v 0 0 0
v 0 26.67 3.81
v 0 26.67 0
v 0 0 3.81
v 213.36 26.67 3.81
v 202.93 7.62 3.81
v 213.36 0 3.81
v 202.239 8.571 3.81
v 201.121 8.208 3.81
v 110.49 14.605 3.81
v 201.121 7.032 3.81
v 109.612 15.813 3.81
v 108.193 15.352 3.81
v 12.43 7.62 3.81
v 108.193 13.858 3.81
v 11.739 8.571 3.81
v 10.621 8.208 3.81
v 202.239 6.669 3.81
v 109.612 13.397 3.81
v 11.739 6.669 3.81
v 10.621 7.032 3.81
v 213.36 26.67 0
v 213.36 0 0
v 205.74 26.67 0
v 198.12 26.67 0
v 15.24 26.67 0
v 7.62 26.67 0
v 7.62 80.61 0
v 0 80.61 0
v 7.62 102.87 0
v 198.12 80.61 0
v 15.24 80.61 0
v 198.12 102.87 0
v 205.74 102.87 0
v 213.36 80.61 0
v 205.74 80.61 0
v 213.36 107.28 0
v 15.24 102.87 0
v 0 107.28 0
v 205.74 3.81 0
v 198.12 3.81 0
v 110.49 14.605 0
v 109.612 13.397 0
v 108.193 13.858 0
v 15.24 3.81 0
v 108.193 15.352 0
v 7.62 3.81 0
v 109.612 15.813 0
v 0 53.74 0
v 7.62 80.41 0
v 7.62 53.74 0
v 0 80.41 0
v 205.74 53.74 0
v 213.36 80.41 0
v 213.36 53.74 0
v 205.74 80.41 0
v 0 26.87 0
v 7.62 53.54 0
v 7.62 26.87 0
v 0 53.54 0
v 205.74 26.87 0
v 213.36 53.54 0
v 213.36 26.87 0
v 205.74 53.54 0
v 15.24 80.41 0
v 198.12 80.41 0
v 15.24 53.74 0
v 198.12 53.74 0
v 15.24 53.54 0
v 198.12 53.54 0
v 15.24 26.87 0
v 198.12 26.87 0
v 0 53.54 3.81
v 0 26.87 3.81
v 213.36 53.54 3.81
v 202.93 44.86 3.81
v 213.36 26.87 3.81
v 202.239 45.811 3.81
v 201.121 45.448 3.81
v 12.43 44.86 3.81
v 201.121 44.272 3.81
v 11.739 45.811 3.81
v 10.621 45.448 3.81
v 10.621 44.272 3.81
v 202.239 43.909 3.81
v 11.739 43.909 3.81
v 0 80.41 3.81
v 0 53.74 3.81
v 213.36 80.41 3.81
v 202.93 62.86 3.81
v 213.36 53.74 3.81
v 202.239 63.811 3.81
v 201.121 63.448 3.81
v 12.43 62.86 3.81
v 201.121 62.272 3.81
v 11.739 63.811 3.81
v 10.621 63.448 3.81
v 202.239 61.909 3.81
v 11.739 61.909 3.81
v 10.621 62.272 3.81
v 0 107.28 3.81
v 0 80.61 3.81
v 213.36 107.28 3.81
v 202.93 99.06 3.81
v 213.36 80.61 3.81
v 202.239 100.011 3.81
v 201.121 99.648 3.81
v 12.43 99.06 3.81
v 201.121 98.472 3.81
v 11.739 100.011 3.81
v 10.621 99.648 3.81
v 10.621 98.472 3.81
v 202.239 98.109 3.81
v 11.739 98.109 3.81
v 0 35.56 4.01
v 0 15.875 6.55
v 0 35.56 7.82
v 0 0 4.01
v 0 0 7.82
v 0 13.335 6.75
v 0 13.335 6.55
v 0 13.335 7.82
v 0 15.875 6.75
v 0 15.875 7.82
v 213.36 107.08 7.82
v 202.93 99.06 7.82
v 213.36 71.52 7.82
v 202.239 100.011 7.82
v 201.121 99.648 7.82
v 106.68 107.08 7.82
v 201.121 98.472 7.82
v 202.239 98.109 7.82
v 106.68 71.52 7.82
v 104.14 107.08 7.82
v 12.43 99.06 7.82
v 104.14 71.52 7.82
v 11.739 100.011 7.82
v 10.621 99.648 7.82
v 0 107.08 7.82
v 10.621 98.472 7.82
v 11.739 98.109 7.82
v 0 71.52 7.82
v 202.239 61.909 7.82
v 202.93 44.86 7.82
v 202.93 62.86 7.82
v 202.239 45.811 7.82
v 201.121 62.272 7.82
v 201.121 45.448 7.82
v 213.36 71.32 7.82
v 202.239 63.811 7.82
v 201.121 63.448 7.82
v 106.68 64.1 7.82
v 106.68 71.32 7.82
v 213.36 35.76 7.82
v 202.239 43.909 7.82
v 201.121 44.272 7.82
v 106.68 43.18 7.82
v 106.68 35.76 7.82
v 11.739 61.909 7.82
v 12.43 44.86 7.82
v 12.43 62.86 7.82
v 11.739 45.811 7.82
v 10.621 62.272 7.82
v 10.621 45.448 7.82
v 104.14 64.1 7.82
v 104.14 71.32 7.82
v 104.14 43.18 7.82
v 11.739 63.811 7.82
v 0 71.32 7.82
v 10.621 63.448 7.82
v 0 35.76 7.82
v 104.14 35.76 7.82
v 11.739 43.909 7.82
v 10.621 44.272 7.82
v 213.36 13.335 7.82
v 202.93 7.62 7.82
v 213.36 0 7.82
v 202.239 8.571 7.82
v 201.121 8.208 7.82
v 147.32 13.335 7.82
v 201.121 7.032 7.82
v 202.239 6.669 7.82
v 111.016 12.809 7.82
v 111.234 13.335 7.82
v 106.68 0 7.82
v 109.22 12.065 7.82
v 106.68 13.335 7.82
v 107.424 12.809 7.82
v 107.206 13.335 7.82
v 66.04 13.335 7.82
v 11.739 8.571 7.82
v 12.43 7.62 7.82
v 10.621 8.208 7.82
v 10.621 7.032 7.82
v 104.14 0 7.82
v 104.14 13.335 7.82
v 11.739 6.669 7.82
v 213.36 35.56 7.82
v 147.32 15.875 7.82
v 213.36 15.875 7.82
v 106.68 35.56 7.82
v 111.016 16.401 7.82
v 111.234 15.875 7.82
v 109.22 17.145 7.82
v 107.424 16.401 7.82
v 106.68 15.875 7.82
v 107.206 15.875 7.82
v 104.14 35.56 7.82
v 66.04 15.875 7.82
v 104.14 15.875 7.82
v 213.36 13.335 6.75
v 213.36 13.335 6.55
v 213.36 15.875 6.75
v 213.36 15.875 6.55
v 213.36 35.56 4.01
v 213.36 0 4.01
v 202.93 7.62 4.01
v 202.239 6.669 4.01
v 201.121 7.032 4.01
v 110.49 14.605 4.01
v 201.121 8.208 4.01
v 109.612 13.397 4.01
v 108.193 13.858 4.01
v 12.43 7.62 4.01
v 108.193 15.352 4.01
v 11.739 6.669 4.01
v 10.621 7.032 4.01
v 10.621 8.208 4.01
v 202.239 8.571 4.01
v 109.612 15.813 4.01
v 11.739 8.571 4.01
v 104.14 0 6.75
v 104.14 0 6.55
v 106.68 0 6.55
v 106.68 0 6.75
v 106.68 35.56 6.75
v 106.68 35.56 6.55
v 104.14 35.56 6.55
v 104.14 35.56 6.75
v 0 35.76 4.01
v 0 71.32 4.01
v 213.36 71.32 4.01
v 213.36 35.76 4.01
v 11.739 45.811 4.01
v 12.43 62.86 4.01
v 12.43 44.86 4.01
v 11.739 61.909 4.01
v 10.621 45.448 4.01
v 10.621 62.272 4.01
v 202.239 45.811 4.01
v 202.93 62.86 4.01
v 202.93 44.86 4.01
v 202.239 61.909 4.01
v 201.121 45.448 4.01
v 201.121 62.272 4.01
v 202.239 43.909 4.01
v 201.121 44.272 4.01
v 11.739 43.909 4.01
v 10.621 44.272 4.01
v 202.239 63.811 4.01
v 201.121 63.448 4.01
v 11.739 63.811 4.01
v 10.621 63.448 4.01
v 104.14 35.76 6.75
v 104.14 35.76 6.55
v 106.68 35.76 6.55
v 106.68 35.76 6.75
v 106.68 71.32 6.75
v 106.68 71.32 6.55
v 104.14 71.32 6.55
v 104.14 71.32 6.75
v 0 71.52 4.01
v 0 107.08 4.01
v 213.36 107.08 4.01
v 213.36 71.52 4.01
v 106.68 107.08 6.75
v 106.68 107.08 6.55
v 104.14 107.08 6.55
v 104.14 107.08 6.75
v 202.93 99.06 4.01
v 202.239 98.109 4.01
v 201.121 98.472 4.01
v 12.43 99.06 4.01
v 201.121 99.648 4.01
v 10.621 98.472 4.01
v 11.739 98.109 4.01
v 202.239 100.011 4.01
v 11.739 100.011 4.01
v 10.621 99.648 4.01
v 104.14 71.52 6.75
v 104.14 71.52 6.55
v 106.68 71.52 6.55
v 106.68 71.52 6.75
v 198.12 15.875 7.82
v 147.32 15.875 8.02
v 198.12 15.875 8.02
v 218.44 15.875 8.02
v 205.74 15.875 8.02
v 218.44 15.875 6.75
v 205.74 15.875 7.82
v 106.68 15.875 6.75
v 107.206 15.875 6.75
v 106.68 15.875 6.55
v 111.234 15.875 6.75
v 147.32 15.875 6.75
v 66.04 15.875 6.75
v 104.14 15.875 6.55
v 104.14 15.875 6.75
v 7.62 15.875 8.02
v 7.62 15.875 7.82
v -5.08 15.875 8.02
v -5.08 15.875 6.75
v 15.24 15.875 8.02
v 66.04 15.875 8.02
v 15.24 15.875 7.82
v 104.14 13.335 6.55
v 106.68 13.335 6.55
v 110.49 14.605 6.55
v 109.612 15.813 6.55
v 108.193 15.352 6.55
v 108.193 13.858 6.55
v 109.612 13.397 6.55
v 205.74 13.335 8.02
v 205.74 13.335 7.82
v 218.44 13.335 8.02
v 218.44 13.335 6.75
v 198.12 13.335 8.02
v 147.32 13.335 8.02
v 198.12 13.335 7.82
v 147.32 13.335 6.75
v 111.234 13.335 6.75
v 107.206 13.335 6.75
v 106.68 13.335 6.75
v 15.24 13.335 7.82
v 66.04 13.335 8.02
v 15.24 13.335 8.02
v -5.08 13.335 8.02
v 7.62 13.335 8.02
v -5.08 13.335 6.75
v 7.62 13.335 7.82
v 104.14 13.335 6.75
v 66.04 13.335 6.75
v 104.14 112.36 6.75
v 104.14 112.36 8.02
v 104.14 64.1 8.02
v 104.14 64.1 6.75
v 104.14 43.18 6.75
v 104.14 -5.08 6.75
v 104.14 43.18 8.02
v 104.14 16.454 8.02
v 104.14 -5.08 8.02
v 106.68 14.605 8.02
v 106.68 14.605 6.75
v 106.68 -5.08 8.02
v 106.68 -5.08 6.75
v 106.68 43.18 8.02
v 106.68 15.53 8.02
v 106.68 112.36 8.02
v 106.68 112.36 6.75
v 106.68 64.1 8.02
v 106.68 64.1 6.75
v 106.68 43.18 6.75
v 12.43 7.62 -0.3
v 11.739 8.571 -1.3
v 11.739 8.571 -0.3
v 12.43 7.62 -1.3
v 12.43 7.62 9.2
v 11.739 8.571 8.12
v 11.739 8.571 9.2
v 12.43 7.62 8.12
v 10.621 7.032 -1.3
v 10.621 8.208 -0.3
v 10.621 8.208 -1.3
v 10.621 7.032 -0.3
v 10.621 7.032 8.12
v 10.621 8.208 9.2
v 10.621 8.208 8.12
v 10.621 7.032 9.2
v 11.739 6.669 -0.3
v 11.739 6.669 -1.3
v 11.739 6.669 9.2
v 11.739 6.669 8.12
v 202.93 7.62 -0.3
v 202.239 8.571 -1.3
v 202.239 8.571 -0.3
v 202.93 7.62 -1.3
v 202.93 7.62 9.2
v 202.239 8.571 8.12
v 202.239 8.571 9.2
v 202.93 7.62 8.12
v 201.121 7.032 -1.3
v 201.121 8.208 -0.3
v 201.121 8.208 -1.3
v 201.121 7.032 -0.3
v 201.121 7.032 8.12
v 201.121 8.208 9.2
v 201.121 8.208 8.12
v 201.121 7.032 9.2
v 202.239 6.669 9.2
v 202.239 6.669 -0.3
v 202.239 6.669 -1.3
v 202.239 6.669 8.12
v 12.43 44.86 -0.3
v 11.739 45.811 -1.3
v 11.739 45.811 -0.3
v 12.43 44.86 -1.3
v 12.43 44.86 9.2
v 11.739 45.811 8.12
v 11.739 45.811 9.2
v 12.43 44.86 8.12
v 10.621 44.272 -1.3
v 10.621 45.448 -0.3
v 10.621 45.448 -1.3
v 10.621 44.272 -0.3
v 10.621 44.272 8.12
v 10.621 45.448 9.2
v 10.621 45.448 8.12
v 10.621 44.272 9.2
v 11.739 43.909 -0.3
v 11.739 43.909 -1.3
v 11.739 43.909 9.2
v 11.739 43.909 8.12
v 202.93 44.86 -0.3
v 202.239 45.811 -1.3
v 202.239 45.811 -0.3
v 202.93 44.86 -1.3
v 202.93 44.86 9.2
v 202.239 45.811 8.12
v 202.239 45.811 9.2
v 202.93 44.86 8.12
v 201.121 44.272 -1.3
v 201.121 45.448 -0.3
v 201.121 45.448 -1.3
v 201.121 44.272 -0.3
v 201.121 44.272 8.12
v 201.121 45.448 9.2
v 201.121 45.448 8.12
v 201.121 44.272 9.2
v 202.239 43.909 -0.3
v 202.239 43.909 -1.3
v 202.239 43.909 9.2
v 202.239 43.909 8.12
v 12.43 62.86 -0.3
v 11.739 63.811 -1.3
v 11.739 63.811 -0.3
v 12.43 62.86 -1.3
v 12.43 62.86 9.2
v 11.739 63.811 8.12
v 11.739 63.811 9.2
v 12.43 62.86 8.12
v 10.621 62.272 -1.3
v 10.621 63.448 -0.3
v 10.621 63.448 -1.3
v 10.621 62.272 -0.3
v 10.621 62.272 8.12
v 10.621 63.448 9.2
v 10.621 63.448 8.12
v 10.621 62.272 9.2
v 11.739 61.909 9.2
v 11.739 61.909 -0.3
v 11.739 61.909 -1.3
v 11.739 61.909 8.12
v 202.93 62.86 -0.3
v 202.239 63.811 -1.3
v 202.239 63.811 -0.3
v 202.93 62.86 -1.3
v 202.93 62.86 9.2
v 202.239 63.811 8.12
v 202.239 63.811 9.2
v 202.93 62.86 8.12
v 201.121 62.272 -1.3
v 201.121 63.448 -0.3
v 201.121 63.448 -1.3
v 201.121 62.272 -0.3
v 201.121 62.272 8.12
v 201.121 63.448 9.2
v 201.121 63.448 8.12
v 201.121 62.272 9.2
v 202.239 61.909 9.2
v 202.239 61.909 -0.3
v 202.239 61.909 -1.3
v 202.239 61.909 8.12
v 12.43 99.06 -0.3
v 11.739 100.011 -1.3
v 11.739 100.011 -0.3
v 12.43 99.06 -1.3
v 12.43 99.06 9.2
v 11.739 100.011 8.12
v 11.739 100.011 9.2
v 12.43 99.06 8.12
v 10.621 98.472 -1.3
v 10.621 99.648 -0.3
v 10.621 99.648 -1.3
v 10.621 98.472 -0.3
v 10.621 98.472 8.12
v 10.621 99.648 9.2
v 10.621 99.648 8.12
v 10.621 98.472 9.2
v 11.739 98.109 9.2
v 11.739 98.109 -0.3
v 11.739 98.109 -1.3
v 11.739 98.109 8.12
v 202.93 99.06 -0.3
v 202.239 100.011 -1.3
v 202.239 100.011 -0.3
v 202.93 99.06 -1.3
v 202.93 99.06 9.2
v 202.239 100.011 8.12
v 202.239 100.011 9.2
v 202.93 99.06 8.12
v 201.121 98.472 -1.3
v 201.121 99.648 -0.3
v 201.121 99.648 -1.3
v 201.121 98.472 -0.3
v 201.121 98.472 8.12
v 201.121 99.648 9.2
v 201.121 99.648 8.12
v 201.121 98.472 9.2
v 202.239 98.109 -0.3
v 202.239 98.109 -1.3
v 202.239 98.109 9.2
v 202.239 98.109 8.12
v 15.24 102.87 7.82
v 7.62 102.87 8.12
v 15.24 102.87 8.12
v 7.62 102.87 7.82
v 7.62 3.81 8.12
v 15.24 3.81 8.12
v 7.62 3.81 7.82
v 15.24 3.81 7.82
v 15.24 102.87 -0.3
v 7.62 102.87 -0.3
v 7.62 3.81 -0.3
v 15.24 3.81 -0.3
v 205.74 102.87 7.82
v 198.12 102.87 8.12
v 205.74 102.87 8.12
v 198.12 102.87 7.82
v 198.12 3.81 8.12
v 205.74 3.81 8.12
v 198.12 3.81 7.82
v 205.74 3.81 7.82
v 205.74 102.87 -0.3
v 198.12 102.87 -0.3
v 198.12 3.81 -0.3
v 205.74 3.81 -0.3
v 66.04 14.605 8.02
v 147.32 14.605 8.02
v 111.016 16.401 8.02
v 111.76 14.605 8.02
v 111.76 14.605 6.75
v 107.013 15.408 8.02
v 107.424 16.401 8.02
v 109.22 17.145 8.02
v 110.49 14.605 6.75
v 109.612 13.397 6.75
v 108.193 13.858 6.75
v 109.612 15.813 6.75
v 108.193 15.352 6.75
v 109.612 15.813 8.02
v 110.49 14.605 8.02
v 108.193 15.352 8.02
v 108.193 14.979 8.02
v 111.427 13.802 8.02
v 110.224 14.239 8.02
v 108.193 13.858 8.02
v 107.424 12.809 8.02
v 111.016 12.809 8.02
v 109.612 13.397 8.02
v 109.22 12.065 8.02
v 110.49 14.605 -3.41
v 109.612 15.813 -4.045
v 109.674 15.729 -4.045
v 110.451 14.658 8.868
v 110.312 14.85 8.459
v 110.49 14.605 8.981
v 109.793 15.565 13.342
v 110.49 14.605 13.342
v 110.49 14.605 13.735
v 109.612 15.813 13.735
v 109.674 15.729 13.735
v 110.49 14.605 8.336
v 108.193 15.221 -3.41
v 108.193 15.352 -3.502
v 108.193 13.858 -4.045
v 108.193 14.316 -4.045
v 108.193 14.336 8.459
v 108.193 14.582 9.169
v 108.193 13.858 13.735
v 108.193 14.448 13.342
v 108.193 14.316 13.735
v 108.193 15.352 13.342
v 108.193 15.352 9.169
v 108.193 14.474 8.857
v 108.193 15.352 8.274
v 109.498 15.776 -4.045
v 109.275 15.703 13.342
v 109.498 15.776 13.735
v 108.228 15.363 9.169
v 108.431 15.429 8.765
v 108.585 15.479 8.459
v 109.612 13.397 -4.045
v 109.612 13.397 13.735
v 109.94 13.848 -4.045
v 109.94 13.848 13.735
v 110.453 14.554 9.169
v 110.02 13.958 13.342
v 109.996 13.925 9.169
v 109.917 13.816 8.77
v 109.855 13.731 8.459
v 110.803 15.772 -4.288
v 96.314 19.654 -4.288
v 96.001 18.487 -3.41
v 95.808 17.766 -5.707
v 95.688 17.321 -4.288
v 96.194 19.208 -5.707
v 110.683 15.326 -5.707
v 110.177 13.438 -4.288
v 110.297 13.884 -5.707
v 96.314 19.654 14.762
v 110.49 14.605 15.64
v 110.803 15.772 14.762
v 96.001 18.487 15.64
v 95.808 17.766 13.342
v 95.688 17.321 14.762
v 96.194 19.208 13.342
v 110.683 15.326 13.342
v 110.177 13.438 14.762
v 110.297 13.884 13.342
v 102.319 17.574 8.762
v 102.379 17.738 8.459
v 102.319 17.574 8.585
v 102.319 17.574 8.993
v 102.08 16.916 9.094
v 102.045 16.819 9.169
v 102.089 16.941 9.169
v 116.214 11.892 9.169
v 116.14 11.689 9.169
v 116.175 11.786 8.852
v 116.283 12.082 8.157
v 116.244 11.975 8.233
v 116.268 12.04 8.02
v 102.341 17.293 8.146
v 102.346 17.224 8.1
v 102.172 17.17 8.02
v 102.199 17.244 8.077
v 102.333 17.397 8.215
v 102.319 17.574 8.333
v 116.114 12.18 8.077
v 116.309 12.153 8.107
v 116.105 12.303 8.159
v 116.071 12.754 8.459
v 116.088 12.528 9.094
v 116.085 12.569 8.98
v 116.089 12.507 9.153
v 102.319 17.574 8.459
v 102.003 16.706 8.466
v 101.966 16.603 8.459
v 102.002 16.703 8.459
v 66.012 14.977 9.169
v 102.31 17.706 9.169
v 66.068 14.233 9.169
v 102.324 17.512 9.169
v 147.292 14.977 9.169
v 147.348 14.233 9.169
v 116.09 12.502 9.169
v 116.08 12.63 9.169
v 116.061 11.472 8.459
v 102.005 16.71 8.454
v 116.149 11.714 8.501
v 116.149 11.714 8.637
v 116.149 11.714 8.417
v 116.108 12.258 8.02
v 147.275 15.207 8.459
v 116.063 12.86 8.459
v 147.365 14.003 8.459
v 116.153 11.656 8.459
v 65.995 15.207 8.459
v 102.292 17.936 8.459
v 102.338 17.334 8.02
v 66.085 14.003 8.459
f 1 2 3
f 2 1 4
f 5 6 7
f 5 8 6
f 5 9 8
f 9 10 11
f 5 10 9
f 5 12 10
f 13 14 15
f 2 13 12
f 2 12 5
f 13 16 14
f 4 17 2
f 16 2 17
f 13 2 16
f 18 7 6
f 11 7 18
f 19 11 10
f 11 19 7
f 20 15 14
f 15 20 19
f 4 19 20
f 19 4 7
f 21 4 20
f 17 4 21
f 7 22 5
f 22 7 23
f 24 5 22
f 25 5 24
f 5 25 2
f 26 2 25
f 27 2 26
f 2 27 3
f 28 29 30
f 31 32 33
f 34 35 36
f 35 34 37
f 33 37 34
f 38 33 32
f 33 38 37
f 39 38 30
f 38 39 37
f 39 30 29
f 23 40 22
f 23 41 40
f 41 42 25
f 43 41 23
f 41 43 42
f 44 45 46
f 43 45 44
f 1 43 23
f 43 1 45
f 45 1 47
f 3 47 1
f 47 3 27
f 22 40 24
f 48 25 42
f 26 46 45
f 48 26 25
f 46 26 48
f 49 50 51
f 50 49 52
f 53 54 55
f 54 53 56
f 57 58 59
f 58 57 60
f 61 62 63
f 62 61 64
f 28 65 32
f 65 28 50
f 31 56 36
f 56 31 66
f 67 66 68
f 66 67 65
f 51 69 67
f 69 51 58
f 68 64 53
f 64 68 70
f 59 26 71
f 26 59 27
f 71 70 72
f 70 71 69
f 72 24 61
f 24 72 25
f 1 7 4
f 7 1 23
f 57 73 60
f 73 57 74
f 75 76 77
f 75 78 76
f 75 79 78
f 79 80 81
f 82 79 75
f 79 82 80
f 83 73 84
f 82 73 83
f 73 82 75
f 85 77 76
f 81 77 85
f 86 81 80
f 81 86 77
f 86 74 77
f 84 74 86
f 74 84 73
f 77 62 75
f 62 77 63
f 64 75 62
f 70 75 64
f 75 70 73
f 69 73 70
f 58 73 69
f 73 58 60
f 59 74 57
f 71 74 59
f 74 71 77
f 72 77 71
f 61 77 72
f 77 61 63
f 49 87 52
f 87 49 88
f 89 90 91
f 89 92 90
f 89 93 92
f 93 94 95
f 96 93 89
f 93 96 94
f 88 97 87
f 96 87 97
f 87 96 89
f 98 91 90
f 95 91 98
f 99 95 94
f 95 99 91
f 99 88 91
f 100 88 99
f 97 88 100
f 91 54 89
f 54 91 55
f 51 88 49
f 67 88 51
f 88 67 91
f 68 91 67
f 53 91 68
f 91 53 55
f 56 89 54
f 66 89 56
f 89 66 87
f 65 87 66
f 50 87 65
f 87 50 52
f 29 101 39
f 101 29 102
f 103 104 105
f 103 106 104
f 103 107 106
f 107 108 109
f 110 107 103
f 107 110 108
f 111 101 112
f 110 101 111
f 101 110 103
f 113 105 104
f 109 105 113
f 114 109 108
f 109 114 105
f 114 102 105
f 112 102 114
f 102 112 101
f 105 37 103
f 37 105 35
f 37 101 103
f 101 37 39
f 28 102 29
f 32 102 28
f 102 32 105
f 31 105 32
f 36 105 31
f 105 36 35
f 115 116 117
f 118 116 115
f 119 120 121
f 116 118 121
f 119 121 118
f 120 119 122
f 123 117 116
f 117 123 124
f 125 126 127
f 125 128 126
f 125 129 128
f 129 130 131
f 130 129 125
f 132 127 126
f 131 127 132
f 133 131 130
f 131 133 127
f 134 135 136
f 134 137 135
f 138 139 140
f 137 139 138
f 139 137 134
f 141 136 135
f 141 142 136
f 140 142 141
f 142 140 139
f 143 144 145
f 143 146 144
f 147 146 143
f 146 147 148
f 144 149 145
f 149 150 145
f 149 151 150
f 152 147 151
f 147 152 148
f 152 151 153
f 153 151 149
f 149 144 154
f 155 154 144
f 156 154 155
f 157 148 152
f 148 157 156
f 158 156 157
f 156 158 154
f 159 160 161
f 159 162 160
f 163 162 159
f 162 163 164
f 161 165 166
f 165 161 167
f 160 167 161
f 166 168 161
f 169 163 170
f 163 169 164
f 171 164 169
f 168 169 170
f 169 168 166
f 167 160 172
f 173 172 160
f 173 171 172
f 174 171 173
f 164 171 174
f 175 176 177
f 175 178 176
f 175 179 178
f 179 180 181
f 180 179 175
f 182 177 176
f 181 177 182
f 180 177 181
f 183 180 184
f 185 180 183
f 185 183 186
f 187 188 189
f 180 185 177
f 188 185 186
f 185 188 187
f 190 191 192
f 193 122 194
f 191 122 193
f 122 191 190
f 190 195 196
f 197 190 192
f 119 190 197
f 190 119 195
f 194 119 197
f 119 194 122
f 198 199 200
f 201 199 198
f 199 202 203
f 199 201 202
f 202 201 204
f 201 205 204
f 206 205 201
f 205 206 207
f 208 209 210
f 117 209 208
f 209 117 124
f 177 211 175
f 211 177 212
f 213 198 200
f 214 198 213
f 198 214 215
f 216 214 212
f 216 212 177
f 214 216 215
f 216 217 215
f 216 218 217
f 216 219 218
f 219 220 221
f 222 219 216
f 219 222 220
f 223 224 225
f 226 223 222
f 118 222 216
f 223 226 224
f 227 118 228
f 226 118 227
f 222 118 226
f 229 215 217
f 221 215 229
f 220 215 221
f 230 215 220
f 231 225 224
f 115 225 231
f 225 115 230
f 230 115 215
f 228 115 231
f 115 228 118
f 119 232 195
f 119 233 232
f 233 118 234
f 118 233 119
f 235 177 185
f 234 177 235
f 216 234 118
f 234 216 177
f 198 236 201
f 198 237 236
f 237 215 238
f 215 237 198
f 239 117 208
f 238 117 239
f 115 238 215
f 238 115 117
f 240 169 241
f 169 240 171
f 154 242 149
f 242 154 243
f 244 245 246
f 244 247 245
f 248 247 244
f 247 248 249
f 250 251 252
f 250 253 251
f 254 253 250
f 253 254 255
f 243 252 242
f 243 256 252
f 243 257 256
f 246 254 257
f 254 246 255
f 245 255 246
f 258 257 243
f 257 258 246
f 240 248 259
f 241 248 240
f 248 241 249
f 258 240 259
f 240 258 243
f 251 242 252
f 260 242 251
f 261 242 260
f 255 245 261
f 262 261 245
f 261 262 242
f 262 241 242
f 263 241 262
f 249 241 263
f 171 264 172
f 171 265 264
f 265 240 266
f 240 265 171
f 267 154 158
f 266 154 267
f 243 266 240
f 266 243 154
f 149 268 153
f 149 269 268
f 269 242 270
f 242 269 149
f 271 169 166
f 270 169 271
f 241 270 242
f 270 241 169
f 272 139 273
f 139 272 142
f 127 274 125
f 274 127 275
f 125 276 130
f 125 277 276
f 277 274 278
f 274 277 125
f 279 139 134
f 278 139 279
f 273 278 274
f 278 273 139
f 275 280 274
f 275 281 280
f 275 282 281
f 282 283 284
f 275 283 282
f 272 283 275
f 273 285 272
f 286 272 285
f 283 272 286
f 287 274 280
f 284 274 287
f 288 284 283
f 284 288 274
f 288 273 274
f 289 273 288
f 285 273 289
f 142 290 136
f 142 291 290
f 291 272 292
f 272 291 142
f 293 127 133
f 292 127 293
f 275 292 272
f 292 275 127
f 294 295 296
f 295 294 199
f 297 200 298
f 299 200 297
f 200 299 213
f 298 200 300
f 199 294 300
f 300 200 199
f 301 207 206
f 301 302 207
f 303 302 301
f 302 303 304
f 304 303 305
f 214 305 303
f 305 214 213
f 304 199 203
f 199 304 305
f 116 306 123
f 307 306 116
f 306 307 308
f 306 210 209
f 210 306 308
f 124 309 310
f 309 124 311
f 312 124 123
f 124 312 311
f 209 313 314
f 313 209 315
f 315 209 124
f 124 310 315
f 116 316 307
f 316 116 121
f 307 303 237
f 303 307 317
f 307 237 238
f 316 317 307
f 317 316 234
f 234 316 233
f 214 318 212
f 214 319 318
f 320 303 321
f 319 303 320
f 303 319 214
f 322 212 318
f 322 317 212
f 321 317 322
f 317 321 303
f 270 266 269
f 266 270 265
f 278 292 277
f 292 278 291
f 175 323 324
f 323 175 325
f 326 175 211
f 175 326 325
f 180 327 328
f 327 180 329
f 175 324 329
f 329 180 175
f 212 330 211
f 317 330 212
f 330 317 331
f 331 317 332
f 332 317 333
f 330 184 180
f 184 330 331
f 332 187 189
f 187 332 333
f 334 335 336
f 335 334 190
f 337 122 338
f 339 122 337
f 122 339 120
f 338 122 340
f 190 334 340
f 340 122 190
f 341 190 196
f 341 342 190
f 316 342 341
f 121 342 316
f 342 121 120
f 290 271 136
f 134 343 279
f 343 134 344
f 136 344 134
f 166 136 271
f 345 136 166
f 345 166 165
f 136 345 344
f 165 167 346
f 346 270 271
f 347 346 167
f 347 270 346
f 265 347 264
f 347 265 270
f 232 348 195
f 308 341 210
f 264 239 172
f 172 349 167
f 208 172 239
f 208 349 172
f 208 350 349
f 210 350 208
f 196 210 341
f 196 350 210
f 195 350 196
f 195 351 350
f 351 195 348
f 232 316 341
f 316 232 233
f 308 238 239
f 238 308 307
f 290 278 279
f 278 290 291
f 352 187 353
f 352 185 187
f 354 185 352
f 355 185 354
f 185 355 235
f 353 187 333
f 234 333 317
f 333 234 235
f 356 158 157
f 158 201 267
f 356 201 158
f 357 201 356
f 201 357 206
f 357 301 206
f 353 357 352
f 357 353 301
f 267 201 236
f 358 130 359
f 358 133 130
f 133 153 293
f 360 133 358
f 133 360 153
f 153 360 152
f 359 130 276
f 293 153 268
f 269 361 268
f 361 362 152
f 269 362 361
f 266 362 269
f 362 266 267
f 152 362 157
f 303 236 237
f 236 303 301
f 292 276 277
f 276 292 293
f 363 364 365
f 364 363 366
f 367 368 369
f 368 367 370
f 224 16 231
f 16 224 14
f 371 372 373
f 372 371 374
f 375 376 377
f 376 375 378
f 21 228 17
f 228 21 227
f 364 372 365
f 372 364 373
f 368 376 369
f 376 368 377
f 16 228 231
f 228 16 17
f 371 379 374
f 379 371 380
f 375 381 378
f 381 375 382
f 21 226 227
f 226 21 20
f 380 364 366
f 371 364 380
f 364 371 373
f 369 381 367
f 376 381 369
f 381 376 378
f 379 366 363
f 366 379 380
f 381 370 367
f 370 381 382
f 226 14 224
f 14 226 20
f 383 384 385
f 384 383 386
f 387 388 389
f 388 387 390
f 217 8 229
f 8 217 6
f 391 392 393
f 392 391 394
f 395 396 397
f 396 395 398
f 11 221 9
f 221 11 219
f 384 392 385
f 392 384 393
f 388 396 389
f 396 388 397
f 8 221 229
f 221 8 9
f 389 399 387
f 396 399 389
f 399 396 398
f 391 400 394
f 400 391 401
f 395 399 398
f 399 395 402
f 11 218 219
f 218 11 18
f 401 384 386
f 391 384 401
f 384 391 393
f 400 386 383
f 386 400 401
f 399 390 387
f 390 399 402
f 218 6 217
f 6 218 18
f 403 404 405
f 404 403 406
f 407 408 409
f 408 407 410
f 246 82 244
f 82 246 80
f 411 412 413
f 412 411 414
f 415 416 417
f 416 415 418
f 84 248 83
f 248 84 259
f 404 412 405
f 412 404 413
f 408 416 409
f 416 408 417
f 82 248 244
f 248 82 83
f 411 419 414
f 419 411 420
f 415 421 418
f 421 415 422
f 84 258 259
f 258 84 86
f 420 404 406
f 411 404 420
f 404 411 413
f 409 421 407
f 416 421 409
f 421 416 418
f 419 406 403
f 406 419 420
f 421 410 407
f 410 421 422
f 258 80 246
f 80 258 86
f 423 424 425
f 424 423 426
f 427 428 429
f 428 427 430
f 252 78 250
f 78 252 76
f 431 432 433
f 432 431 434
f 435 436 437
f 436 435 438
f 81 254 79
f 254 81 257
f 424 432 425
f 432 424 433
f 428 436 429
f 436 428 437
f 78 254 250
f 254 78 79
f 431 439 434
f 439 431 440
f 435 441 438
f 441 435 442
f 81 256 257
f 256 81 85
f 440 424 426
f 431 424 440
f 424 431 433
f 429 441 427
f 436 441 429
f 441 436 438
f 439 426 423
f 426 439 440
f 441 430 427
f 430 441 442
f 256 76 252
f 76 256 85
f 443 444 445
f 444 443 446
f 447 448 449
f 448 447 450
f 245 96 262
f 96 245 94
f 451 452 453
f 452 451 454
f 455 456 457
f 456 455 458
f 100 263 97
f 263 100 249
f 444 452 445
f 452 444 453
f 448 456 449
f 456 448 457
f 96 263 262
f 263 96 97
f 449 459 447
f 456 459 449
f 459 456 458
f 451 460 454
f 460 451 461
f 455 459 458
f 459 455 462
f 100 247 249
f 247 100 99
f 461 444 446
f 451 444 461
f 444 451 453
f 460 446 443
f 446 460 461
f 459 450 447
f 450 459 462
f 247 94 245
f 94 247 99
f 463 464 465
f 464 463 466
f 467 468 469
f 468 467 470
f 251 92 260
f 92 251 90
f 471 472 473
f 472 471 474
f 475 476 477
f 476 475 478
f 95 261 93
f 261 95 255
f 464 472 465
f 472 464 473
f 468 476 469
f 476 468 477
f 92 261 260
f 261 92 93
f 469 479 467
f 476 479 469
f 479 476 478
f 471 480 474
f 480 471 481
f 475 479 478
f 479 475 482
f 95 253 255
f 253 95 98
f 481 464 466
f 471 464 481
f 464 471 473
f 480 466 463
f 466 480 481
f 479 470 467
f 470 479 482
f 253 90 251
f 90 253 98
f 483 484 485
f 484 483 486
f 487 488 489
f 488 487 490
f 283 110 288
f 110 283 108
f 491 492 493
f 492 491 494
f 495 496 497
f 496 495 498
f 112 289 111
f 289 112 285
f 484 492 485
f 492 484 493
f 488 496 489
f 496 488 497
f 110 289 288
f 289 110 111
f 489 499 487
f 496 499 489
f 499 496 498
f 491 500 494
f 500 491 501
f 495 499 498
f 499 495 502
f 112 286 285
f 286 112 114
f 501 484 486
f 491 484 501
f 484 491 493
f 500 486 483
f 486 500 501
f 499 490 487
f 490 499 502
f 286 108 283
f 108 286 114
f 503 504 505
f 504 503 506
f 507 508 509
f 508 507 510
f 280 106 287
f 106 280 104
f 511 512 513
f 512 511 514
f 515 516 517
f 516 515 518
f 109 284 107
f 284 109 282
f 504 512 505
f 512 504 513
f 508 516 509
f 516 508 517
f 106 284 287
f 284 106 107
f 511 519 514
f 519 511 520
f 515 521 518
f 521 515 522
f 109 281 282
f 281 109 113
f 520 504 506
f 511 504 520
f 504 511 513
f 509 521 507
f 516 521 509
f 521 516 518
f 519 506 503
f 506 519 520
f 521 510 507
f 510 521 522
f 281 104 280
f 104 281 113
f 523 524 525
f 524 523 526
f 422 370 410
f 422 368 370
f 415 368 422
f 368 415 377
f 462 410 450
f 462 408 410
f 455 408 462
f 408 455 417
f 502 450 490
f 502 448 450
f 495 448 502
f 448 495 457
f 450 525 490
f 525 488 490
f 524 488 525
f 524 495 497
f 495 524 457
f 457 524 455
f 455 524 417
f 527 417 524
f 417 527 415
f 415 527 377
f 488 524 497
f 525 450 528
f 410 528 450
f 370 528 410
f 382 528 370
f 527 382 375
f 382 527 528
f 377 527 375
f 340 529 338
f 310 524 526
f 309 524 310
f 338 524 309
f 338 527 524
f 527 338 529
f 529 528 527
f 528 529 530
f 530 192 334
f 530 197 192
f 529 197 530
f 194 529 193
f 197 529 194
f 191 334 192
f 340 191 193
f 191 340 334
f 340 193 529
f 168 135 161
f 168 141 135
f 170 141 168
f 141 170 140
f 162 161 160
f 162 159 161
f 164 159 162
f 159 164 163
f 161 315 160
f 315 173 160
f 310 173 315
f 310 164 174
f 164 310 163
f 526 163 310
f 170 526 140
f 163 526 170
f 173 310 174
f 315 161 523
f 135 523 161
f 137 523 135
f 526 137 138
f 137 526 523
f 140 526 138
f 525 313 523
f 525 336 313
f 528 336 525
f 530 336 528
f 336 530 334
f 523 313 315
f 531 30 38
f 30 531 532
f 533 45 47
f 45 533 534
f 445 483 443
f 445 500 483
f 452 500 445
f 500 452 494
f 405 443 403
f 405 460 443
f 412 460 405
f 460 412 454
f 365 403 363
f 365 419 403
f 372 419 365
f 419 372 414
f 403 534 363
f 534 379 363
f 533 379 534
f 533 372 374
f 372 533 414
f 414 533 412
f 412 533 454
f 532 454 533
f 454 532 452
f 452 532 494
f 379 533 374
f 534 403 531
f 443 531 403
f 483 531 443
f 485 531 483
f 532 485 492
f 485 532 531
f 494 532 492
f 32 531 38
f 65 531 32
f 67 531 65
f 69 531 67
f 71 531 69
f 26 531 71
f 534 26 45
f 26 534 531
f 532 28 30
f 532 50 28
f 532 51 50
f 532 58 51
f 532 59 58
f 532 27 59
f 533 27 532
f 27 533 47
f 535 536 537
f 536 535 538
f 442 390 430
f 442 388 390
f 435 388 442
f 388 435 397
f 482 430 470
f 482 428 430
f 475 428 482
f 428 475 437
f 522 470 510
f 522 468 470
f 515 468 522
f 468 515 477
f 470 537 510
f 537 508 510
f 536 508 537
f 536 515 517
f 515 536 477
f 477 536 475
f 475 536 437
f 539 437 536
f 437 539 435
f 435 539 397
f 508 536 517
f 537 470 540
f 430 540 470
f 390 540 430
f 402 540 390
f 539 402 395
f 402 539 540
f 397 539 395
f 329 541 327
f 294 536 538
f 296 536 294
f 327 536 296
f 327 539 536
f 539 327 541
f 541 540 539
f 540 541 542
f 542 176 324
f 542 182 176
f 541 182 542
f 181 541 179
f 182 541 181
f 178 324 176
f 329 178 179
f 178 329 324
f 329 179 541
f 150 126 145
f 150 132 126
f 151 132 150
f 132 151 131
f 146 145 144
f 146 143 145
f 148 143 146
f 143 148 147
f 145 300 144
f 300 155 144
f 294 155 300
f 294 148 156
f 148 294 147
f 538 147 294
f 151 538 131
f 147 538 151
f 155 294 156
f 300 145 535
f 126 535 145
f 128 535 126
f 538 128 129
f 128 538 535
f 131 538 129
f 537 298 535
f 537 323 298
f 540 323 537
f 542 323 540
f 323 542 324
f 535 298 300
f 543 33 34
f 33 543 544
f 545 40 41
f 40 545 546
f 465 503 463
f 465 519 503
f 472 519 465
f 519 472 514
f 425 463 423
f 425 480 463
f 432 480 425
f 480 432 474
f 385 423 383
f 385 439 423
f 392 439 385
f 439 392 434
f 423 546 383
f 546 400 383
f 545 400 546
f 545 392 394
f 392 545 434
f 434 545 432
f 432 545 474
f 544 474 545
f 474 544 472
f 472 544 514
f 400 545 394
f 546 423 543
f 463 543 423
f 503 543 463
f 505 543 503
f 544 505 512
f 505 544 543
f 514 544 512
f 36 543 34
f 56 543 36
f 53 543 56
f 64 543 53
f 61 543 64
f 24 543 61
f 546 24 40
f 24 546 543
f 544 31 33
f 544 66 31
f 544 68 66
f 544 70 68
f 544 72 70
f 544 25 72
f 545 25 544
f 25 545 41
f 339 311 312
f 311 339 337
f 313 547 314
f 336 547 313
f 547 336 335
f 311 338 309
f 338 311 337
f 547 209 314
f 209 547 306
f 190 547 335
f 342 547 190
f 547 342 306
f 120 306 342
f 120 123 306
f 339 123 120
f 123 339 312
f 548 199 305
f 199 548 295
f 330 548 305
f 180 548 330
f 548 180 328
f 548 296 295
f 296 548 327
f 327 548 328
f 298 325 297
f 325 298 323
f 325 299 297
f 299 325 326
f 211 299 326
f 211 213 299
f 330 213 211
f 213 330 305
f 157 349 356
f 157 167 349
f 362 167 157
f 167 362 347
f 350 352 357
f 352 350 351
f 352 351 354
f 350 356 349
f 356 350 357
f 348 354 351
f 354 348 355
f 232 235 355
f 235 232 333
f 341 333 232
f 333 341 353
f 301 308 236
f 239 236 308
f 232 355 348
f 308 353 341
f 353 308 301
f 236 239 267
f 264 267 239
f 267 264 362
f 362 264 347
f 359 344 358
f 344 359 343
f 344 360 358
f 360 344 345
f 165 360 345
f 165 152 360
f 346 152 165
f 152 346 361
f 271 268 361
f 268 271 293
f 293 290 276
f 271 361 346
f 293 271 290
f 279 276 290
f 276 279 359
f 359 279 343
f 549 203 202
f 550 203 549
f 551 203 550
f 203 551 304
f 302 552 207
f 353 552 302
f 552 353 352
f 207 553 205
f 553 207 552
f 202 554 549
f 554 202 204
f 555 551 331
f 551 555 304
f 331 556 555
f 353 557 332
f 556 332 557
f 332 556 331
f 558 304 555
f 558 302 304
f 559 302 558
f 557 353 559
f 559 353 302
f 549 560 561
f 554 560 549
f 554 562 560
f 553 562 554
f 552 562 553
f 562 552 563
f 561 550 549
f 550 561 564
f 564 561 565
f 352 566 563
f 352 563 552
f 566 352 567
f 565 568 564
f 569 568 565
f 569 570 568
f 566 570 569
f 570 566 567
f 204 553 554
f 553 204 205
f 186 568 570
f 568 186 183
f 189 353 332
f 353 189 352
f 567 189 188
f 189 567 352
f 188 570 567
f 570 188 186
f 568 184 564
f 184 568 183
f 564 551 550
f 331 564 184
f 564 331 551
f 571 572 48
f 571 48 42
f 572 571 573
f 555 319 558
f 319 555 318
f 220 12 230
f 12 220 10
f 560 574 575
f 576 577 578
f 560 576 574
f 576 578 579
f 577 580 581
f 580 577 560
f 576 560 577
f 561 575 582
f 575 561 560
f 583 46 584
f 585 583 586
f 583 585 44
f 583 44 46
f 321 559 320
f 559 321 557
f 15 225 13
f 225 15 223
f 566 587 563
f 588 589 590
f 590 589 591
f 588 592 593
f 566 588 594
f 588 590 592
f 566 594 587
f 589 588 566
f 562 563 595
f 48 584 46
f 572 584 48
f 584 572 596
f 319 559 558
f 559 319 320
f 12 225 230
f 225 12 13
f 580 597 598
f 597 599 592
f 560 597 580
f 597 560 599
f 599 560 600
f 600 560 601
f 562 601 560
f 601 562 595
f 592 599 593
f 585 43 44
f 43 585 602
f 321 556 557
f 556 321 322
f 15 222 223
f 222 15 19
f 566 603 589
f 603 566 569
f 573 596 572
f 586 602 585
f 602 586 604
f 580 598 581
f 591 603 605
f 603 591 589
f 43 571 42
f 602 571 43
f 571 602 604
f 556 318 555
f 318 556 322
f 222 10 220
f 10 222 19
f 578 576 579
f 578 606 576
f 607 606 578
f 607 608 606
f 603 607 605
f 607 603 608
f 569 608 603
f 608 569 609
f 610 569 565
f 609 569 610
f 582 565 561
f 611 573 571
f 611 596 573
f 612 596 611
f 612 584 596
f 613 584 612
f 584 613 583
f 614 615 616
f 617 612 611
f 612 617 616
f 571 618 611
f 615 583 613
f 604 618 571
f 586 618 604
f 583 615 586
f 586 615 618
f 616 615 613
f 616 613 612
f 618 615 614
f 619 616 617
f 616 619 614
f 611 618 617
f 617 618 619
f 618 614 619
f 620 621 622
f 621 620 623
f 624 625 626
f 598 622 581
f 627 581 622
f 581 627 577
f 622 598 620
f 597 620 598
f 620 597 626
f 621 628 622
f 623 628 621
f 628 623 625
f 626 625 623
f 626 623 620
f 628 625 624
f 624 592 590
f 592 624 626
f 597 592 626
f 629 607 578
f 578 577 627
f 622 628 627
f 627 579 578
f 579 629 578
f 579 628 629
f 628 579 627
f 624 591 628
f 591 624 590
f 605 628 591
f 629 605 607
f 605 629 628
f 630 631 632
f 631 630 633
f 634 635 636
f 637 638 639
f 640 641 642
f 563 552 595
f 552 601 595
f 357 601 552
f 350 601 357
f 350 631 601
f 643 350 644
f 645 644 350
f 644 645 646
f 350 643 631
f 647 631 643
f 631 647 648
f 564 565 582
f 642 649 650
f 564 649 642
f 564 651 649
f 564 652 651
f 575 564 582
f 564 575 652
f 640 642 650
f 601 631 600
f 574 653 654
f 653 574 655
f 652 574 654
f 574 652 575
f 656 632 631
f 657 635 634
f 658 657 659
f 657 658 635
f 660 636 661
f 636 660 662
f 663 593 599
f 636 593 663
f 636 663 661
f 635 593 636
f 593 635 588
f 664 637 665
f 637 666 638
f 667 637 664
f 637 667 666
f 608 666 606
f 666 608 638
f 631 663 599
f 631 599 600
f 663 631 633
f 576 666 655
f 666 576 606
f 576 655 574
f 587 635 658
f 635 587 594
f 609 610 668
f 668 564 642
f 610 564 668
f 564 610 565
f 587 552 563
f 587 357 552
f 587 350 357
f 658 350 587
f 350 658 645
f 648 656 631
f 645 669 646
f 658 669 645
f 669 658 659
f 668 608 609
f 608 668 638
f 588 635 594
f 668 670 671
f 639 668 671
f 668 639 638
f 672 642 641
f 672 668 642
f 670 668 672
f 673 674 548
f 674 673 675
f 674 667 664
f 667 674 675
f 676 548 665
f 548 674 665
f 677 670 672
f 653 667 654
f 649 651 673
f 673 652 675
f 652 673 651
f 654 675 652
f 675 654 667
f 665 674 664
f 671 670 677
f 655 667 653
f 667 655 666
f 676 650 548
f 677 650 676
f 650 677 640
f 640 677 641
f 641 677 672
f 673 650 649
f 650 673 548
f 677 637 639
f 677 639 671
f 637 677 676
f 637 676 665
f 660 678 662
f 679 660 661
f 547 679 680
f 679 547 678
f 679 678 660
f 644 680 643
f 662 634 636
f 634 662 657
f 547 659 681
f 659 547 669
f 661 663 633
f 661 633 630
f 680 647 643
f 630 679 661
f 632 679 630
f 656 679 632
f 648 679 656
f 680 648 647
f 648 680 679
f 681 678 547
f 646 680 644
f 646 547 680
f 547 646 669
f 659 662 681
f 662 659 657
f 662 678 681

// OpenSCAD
// file: common/board.scad
// board.scad

BOARD_DEFAULT_LENGTH = 600;
BOARD_DEFAULT_WIDTH = 120;
BOARD_DEFAULT_THICKNESS = 120;

function board_get_default_size()
    = [BOARD_DEFAULT_LENGTH, BOARD_DEFAULT_WIDTH, BOARD_DEFAULT_THICKNESS];

module board(size = board_get_default_size(), center = false)
{
    // size[0] is always with the grain
    // size[1] is against the grain
    // size[2] is the board thickness
    cube(size = size, center = center);
}
// main file
// door.scad
// units: centimeter
// TODO:
// - separate into files/parts
// - move locking assembly to in between?
//
// ref http://www.cannymachines.com/entries/9/openscad_dimensioned_drawings

use <common/board.scad>

// door size
// 7' x 3.5' x ? ft
// 84" x 42" x ? in
// 213.36 x 106.68 x ? cm

// 4 x 10.5" == 42"
// 4 x 26.67 == 106.68 cm

// 3 x 14" == 42"
// 3 x 35.56 == 106.68 cm

DOOR_HEIGHT = 213.36;
DOOR_WIDTH = 106.68;
LOCK_ENGAGED_DIST = 5.08;
VISUAL_SEP_DIST = 0.2;
BAR_THICKNESS = 1.27;

VERT_BAR_OFFSET = DOOR_WIDTH / 8;
HORIZ_BAR_OFFSET = DOOR_HEIGHT / 2;

HANDLE_SHAFT_RADIUS = 2.54 / 2;
HANDLE_SHAFT_LENGTH = 17.78;

HANDLE_GEAR_RADIUS = 5.08 / 2;
HANDLE_GEAR_LENGTH = BAR_THICKNESS;

HANDLE_GRIP_RADIUS = 2.54 / 2;
HANDLE_GRIP_LENGTH = 15;
HANDLE_GRIP_OFFSET_ANGLE = 15;

HANDLE_ARM_RADIUS = 1.27 / 2;
HANDLE_ARM_LENGTH = 15;
HANDLE_ARM_OFFSET_ANGLE = 20;

HANDLE_LEVER_RADIUS = 1.27 / 2;
HANDLE_LEVER_OFFSET_ANGLE = -4.3;
HANDLE_UPPER_LEVER_LENGTH = 31.3;
HANDLE_LOWER_LEVER_LENGTH = 36.4;

SUPPORT_STRAP_BAR_WIDTH = 7.62;
SUPPORT_STRAP_BAR_LENGTH =
        DOOR_WIDTH
        - SUPPORT_STRAP_BAR_WIDTH;
SUPPORT_STRAP_BAR_THICKNESS = 0.3;

SUPPORT_STRAP_BOLT_RADIUS = 1;
SUPPORT_STRAP_BOLT_LENGTH = 10.5;
SUPPORT_STRAP_BOLT_OFFSETS = [
        SUPPORT_STRAP_BAR_WIDTH,
        3 * SUPPORT_STRAP_BAR_WIDTH + 22,
        (3 * SUPPORT_STRAP_BAR_WIDTH) + 22 + 18,
        DOOR_WIDTH - SUPPORT_STRAP_BAR_WIDTH];

VERT_LOCK_BAR_LENGTH = (DOOR_HEIGHT / 3);
VERT_LOCK_BAR_WIDTH = 2.54;
VERT_LOCK_BAR_THICKNESS = BAR_THICKNESS;

HORIZ_LOCK_BAR_LENGTH =
        (DOOR_WIDTH / 2) - LOCK_ENGAGED_DIST;
HORIZ_LOCK_BAR_WIDTH = 2.54;
HORIZ_LOCK_BAR_THICKNESS = BAR_THICKNESS;

OUTSIDE_BOARD_COUNT = 4;
OUTSIDE_BOARD_LENGTH = DOOR_HEIGHT;
OUTSIDE_BOARD_WIDTH = 26.67;
OUTSIDE_BOARD_THICKNESS = 3.81;

INSIDE_BOARD_COUNT = 3;
INSIDE_BOARD_LENGTH = DOOR_HEIGHT;
INSIDE_BOARD_WIDTH = 35.56;
INSIDE_BOARD_THICKNESS = 3.81;

TOTAL_LENGTH = DOOR_HEIGHT;
TOTAL_WIDTH =
        DOOR_WIDTH
        + (3 * VISUAL_SEP_DIST);
TOTAL_BOARD_THICKNESS =
        OUTSIDE_BOARD_THICKNESS
        + VISUAL_SEP_DIST
        + INSIDE_BOARD_THICKNESS;

module vert_lock_bar()
{
    bar_size = [
            VERT_LOCK_BAR_LENGTH,
            VERT_LOCK_BAR_WIDTH,
            VERT_LOCK_BAR_THICKNESS];

    board(bar_size);
}

module horiz_lock_bar()
{
    bar_size = [
            HORIZ_LOCK_BAR_LENGTH,
            HORIZ_LOCK_BAR_WIDTH,
            HORIZ_LOCK_BAR_THICKNESS];

    translate([HORIZ_LOCK_BAR_WIDTH, 0, 0])
        rotate([0, 0, 90])
            board(bar_size);
}

module support_strap_bar()
{
    bar_size = [
            SUPPORT_STRAP_BAR_LENGTH,
            SUPPORT_STRAP_BAR_WIDTH,
            SUPPORT_STRAP_BAR_THICKNESS];

    translate([SUPPORT_STRAP_BAR_WIDTH, 0, 0])
        rotate([0, 0, 90])
            board(bar_size);
}

module outside_board()
{
    board_size = [
            OUTSIDE_BOARD_LENGTH,
            OUTSIDE_BOARD_WIDTH,
            OUTSIDE_BOARD_THICKNESS];

    board(board_size);
}

module inside_board()
{
    board_size = [
            INSIDE_BOARD_LENGTH,
            INSIDE_BOARD_WIDTH,
            INSIDE_BOARD_THICKNESS];

    board(board_size);
}

module outside_board_assembly()
{
    for(b = [0 : OUTSIDE_BOARD_COUNT - 1])
    {
        w = OUTSIDE_BOARD_WIDTH + VISUAL_SEP_DIST;
        offset_y = b * w;

        translate([0, offset_y, 0])
            outside_board();
    }
}

module inside_board_assembly()
{
    vbar_size = [
            TOTAL_LENGTH,
            VERT_LOCK_BAR_WIDTH,
            VERT_LOCK_BAR_THICKNESS];

    hbar_size = [
            TOTAL_WIDTH,
            VERT_LOCK_BAR_WIDTH,
            VERT_LOCK_BAR_THICKNESS];

    z0 =
            INSIDE_BOARD_THICKNESS
            - BAR_THICKNESS;

    offset_h = HORIZ_BAR_OFFSET;

    difference()
    {
        for(b = [0 : INSIDE_BOARD_COUNT - 1])
        {
            w = INSIDE_BOARD_WIDTH + VISUAL_SEP_DIST;
            offset_y = b * w;

            translate([0, offset_y, 0])
                inside_board();
        }

        translate([0, VERT_BAR_OFFSET, z0])
            board(vbar_size);

        translate([offset_h, 0, z0])
            rotate([0, 0, 90])
                board(hbar_size);
    }
}

module lock_assembly()
{
    offset_engaged = LOCK_ENGAGED_DIST;

    v0 = [
            -offset_engaged,
            VERT_BAR_OFFSET,
            0];

    v1 = [
            TOTAL_LENGTH
                    - VERT_LOCK_BAR_LENGTH
                    + offset_engaged,
            VERT_BAR_OFFSET,
            0];

    h0 = [
            HORIZ_BAR_OFFSET - HORIZ_LOCK_BAR_WIDTH,
            -offset_engaged,
            0];

    h1 = [
            HORIZ_BAR_OFFSET - HORIZ_LOCK_BAR_WIDTH,
            TOTAL_WIDTH
                    - HORIZ_LOCK_BAR_LENGTH
                    + offset_engaged,
            0];

    translate(v0)
        vert_lock_bar();

    translate(v1)
        vert_lock_bar();

    translate(h0)
        horiz_lock_bar();

    translate(h1)
        horiz_lock_bar();
}

module handle_assembly()
{
    offset_gear = [
            HORIZ_BAR_OFFSET + HANDLE_GEAR_RADIUS,
            VERT_BAR_OFFSET + (VERT_LOCK_BAR_WIDTH/2),
            0];

    offset_shaft = [
            HORIZ_BAR_OFFSET + HANDLE_GEAR_RADIUS,
            VERT_BAR_OFFSET + (VERT_LOCK_BAR_WIDTH/2),
            (-HANDLE_SHAFT_LENGTH / 2)
                    - (INSIDE_BOARD_THICKNESS / 2)];

    offset_grip_outside = [
            HORIZ_BAR_OFFSET
                    + (3 * HANDLE_SHAFT_RADIUS),
            VERT_BAR_OFFSET + (VERT_LOCK_BAR_WIDTH/2),
            (-HANDLE_SHAFT_LENGTH / 2) - (2 * HANDLE_GRIP_RADIUS)];

    offset_grip_inside = [
            HORIZ_BAR_OFFSET
                    + (3 * HANDLE_SHAFT_RADIUS),
            VERT_BAR_OFFSET + (VERT_LOCK_BAR_WIDTH/2),
            (HANDLE_SHAFT_LENGTH / 2) - HANDLE_GRIP_RADIUS];

    offset_arm = [
            HORIZ_BAR_OFFSET
                    + HANDLE_GEAR_RADIUS,
            VERT_BAR_OFFSET + (VERT_LOCK_BAR_WIDTH/2),
            HORIZ_LOCK_BAR_THICKNESS + HANDLE_ARM_RADIUS];

    offset_upper_lever = [
            TOTAL_LENGTH
                    - VERT_LOCK_BAR_LENGTH
                    + LOCK_ENGAGED_DIST,
            VERT_BAR_OFFSET + (VERT_LOCK_BAR_WIDTH/2),
            HORIZ_LOCK_BAR_THICKNESS + HANDLE_ARM_RADIUS];

    offset_lower_lever = [
            VERT_LOCK_BAR_LENGTH - LOCK_ENGAGED_DIST,
            VERT_BAR_OFFSET + (VERT_LOCK_BAR_WIDTH/2),
            HORIZ_LOCK_BAR_THICKNESS + HANDLE_ARM_RADIUS];

    translate(offset_gear)
        cylinder(
                h = HANDLE_GEAR_LENGTH,
                r1 = HANDLE_GEAR_RADIUS,
                r2 = HANDLE_GEAR_RADIUS,
                center = false);

    translate(offset_shaft)
        cylinder(
                h = HANDLE_SHAFT_LENGTH,
                r1 = HANDLE_SHAFT_RADIUS,
                r2 = HANDLE_SHAFT_RADIUS,
                center = false);

    translate(offset_grip_outside)
        rotate([0, -90, -HANDLE_GRIP_OFFSET_ANGLE])
            cylinder(
                    h = HANDLE_GRIP_LENGTH,
                    r1 = HANDLE_GRIP_RADIUS,
                    r2 = HANDLE_GRIP_RADIUS,
                    center = false);

    translate(offset_grip_inside)
        rotate([0, -90, -HANDLE_GRIP_OFFSET_ANGLE])
            cylinder(
                    h = HANDLE_GRIP_LENGTH,
                    r1 = HANDLE_GRIP_RADIUS,
                    r2 = HANDLE_GRIP_RADIUS,
                    center = false);

    translate(offset_arm)
        rotate([0, 0, -HANDLE_ARM_OFFSET_ANGLE])
            translate([-HANDLE_ARM_LENGTH / 2, 0, 0])
                rotate([0, 90, 0])
                    cylinder(
                            h = HANDLE_ARM_LENGTH,
                            r1 = HANDLE_ARM_RADIUS,
                            r2 = HANDLE_ARM_RADIUS,
                            center = false);

    translate(offset_upper_lever)
        rotate([0, 0, -HANDLE_LEVER_OFFSET_ANGLE])
            translate([-HANDLE_UPPER_LEVER_LENGTH, 0, 0])
                rotate([0, 90, 0])
                    cylinder(
                            h = HANDLE_UPPER_LEVER_LENGTH,
                            r1 = HANDLE_LEVER_RADIUS,
                            r2 = HANDLE_LEVER_RADIUS,
                            center = false);

    translate(offset_lower_lever)
        rotate([0, 0, -HANDLE_LEVER_OFFSET_ANGLE])
                rotate([0, 90, 0])
                    cylinder(
                            h = HANDLE_LOWER_LEVER_LENGTH,
                            r1 = HANDLE_LEVER_RADIUS,
                            r2 = HANDLE_LEVER_RADIUS,
                            center = false);
}

module support_straps_assembly()
{
    p0 = [
            SUPPORT_STRAP_BAR_WIDTH,
            SUPPORT_STRAP_BAR_WIDTH / 2,
            TOTAL_BOARD_THICKNESS];

    p1 = [
            SUPPORT_STRAP_BAR_WIDTH,
            SUPPORT_STRAP_BAR_WIDTH / 2,
            -SUPPORT_STRAP_BAR_THICKNESS];

    p2 = [
            TOTAL_LENGTH
                    - (2 * SUPPORT_STRAP_BAR_WIDTH),
            SUPPORT_STRAP_BAR_WIDTH / 2,
            TOTAL_BOARD_THICKNESS];

    p3 = [
            TOTAL_LENGTH
                    - (2 * SUPPORT_STRAP_BAR_WIDTH),
            SUPPORT_STRAP_BAR_WIDTH / 2,
            -SUPPORT_STRAP_BAR_THICKNESS];

    translate(p0)
        support_strap_bar();

    translate(p1)
        support_strap_bar();

    translate(p2)
        support_strap_bar();

    translate(p3)
        support_strap_bar();

    for(y = SUPPORT_STRAP_BOLT_OFFSETS)
    {
        offset_b0 = [
                SUPPORT_STRAP_BAR_WIDTH
                        + (SUPPORT_STRAP_BAR_WIDTH / 2),
                y,
                -SUPPORT_STRAP_BAR_THICKNESS - 1];

        offset_b1 = [
                TOTAL_LENGTH
                    - (2 * SUPPORT_STRAP_BAR_WIDTH)
                    + (SUPPORT_STRAP_BAR_WIDTH / 2),
                y,
                -SUPPORT_STRAP_BAR_THICKNESS - 1];

        translate(offset_b0)
            cylinder(
                    h = SUPPORT_STRAP_BOLT_LENGTH,
                    r1 = SUPPORT_STRAP_BOLT_RADIUS,
                    r2 = SUPPORT_STRAP_BOLT_RADIUS,
                    center = false);

        translate(offset_b1)
            cylinder(
                    h = SUPPORT_STRAP_BOLT_LENGTH,
                    r1 = SUPPORT_STRAP_BOLT_RADIUS,
                    r2 = SUPPORT_STRAP_BOLT_RADIUS,
                    center = false);
    }
}

module door()
{
    color("SaddleBrown")
        outside_board_assembly();

    z0 = OUTSIDE_BOARD_THICKNESS + VISUAL_SEP_DIST;

    color("Sienna")
        translate([0, 0, z0])
            inside_board_assembly();

    z1 =
            TOTAL_BOARD_THICKNESS
            - BAR_THICKNESS
            + VISUAL_SEP_DIST;

    color("DimGray")
        translate([0, 0, z1])
        {
            lock_assembly();
            handle_assembly();
        }

    color("DarkSlateGray")
        support_straps_assembly();
}

door();
